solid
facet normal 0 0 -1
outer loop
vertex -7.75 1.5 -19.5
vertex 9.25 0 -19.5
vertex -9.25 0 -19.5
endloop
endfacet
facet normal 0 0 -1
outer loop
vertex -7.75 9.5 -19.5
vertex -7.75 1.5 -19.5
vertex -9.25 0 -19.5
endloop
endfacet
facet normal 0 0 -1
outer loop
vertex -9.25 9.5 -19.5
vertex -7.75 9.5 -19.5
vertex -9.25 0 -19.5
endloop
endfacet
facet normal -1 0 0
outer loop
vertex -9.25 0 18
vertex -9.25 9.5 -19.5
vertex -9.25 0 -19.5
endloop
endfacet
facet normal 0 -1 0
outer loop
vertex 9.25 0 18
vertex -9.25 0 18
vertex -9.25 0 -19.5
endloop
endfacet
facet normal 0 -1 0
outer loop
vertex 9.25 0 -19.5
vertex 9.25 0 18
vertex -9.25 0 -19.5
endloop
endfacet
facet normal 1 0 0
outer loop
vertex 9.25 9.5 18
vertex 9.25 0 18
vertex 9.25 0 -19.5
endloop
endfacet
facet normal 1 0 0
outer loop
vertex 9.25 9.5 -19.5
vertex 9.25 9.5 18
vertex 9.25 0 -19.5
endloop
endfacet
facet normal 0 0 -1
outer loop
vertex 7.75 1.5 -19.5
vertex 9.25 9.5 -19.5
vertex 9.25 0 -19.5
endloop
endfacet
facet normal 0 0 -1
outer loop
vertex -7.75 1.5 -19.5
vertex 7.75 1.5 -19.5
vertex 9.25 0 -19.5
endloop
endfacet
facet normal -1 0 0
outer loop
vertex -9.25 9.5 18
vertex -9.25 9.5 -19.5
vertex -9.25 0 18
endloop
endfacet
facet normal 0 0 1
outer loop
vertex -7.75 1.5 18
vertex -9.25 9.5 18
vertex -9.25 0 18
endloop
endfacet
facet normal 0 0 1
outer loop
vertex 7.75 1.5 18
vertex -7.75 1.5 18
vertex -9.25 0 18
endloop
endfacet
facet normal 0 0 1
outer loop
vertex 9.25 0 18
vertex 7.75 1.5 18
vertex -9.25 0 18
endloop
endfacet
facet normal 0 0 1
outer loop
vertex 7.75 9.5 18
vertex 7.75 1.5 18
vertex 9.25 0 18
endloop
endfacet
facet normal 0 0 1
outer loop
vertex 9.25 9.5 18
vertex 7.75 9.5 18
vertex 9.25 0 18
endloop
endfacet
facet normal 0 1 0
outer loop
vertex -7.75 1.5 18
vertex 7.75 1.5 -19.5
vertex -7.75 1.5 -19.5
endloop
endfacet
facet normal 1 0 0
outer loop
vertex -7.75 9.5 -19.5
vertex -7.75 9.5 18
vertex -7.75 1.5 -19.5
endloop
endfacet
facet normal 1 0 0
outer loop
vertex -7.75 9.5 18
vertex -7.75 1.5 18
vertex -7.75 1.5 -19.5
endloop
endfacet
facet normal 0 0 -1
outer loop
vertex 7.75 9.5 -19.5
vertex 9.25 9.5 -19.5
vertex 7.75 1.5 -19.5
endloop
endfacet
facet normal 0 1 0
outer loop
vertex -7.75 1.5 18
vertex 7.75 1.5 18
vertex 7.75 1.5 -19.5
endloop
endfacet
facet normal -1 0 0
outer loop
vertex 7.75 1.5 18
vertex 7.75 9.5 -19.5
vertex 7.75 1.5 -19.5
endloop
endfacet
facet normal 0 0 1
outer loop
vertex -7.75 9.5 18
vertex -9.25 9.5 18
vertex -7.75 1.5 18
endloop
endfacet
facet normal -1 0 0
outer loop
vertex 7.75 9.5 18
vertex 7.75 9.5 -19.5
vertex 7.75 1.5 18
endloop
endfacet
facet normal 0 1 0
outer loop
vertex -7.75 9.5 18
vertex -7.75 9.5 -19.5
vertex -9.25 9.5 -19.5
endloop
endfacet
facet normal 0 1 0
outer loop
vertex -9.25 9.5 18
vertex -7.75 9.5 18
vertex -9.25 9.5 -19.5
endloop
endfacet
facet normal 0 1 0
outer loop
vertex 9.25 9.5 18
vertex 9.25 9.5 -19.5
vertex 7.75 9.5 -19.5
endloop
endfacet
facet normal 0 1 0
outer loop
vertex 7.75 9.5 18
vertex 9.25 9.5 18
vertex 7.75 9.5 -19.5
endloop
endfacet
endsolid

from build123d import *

# Parameters (mm, degrees)
ESBO_O1_W       = 18.5
ESBO_O1_H       = 39
EXTRUS_O1_DEPTH = 1.5
EXTRUS_O2_DEPTH = 8
ESBO_O3_W       = 18.5
ESBO_O3_H       = 1.5
EXTRUS_O3_DEPTH = 24.580977503


with BuildPart() as part:
    # Esboço1 → Extrusão1 (new body)
    with BuildSketch(Plane(origin=(0, 0, 0), x_dir=(1, 0, 0), z_dir=(0, 1, 0))):
        Rectangle(ESBO_O1_W, ESBO_O1_H)
    extrude(amount=EXTRUS_O1_DEPTH)

    # Esboço2 → Extrusão2 (add)
    with BuildSketch(Plane(origin=(0, 1.5, 0), x_dir=(1, 0, 0), z_dir=(0, 1, 0))):
        Polygon((7.75, 19.5), (9.25, 19.5), (9.25, -19.5), (-9.25, -19.5), (-9.25, 19.5), (-7.75, 19.5), (-7.75, -18), (7.75, -18), align=None)
    extrude(amount=EXTRUS_O2_DEPTH)

    # Esboço3 → Extrusão3 (cut, through all)
    with BuildSketch(Plane(origin=(0, 9.5, 0), x_dir=(1, 0, 0), z_dir=(0, 1, 0))):
        with Locations((0, -18.75)):
            Rectangle(ESBO_O3_W, ESBO_O3_H)
    extrude(amount=-EXTRUS_O3_DEPTH, mode=Mode.SUBTRACT)


solid = part.part
